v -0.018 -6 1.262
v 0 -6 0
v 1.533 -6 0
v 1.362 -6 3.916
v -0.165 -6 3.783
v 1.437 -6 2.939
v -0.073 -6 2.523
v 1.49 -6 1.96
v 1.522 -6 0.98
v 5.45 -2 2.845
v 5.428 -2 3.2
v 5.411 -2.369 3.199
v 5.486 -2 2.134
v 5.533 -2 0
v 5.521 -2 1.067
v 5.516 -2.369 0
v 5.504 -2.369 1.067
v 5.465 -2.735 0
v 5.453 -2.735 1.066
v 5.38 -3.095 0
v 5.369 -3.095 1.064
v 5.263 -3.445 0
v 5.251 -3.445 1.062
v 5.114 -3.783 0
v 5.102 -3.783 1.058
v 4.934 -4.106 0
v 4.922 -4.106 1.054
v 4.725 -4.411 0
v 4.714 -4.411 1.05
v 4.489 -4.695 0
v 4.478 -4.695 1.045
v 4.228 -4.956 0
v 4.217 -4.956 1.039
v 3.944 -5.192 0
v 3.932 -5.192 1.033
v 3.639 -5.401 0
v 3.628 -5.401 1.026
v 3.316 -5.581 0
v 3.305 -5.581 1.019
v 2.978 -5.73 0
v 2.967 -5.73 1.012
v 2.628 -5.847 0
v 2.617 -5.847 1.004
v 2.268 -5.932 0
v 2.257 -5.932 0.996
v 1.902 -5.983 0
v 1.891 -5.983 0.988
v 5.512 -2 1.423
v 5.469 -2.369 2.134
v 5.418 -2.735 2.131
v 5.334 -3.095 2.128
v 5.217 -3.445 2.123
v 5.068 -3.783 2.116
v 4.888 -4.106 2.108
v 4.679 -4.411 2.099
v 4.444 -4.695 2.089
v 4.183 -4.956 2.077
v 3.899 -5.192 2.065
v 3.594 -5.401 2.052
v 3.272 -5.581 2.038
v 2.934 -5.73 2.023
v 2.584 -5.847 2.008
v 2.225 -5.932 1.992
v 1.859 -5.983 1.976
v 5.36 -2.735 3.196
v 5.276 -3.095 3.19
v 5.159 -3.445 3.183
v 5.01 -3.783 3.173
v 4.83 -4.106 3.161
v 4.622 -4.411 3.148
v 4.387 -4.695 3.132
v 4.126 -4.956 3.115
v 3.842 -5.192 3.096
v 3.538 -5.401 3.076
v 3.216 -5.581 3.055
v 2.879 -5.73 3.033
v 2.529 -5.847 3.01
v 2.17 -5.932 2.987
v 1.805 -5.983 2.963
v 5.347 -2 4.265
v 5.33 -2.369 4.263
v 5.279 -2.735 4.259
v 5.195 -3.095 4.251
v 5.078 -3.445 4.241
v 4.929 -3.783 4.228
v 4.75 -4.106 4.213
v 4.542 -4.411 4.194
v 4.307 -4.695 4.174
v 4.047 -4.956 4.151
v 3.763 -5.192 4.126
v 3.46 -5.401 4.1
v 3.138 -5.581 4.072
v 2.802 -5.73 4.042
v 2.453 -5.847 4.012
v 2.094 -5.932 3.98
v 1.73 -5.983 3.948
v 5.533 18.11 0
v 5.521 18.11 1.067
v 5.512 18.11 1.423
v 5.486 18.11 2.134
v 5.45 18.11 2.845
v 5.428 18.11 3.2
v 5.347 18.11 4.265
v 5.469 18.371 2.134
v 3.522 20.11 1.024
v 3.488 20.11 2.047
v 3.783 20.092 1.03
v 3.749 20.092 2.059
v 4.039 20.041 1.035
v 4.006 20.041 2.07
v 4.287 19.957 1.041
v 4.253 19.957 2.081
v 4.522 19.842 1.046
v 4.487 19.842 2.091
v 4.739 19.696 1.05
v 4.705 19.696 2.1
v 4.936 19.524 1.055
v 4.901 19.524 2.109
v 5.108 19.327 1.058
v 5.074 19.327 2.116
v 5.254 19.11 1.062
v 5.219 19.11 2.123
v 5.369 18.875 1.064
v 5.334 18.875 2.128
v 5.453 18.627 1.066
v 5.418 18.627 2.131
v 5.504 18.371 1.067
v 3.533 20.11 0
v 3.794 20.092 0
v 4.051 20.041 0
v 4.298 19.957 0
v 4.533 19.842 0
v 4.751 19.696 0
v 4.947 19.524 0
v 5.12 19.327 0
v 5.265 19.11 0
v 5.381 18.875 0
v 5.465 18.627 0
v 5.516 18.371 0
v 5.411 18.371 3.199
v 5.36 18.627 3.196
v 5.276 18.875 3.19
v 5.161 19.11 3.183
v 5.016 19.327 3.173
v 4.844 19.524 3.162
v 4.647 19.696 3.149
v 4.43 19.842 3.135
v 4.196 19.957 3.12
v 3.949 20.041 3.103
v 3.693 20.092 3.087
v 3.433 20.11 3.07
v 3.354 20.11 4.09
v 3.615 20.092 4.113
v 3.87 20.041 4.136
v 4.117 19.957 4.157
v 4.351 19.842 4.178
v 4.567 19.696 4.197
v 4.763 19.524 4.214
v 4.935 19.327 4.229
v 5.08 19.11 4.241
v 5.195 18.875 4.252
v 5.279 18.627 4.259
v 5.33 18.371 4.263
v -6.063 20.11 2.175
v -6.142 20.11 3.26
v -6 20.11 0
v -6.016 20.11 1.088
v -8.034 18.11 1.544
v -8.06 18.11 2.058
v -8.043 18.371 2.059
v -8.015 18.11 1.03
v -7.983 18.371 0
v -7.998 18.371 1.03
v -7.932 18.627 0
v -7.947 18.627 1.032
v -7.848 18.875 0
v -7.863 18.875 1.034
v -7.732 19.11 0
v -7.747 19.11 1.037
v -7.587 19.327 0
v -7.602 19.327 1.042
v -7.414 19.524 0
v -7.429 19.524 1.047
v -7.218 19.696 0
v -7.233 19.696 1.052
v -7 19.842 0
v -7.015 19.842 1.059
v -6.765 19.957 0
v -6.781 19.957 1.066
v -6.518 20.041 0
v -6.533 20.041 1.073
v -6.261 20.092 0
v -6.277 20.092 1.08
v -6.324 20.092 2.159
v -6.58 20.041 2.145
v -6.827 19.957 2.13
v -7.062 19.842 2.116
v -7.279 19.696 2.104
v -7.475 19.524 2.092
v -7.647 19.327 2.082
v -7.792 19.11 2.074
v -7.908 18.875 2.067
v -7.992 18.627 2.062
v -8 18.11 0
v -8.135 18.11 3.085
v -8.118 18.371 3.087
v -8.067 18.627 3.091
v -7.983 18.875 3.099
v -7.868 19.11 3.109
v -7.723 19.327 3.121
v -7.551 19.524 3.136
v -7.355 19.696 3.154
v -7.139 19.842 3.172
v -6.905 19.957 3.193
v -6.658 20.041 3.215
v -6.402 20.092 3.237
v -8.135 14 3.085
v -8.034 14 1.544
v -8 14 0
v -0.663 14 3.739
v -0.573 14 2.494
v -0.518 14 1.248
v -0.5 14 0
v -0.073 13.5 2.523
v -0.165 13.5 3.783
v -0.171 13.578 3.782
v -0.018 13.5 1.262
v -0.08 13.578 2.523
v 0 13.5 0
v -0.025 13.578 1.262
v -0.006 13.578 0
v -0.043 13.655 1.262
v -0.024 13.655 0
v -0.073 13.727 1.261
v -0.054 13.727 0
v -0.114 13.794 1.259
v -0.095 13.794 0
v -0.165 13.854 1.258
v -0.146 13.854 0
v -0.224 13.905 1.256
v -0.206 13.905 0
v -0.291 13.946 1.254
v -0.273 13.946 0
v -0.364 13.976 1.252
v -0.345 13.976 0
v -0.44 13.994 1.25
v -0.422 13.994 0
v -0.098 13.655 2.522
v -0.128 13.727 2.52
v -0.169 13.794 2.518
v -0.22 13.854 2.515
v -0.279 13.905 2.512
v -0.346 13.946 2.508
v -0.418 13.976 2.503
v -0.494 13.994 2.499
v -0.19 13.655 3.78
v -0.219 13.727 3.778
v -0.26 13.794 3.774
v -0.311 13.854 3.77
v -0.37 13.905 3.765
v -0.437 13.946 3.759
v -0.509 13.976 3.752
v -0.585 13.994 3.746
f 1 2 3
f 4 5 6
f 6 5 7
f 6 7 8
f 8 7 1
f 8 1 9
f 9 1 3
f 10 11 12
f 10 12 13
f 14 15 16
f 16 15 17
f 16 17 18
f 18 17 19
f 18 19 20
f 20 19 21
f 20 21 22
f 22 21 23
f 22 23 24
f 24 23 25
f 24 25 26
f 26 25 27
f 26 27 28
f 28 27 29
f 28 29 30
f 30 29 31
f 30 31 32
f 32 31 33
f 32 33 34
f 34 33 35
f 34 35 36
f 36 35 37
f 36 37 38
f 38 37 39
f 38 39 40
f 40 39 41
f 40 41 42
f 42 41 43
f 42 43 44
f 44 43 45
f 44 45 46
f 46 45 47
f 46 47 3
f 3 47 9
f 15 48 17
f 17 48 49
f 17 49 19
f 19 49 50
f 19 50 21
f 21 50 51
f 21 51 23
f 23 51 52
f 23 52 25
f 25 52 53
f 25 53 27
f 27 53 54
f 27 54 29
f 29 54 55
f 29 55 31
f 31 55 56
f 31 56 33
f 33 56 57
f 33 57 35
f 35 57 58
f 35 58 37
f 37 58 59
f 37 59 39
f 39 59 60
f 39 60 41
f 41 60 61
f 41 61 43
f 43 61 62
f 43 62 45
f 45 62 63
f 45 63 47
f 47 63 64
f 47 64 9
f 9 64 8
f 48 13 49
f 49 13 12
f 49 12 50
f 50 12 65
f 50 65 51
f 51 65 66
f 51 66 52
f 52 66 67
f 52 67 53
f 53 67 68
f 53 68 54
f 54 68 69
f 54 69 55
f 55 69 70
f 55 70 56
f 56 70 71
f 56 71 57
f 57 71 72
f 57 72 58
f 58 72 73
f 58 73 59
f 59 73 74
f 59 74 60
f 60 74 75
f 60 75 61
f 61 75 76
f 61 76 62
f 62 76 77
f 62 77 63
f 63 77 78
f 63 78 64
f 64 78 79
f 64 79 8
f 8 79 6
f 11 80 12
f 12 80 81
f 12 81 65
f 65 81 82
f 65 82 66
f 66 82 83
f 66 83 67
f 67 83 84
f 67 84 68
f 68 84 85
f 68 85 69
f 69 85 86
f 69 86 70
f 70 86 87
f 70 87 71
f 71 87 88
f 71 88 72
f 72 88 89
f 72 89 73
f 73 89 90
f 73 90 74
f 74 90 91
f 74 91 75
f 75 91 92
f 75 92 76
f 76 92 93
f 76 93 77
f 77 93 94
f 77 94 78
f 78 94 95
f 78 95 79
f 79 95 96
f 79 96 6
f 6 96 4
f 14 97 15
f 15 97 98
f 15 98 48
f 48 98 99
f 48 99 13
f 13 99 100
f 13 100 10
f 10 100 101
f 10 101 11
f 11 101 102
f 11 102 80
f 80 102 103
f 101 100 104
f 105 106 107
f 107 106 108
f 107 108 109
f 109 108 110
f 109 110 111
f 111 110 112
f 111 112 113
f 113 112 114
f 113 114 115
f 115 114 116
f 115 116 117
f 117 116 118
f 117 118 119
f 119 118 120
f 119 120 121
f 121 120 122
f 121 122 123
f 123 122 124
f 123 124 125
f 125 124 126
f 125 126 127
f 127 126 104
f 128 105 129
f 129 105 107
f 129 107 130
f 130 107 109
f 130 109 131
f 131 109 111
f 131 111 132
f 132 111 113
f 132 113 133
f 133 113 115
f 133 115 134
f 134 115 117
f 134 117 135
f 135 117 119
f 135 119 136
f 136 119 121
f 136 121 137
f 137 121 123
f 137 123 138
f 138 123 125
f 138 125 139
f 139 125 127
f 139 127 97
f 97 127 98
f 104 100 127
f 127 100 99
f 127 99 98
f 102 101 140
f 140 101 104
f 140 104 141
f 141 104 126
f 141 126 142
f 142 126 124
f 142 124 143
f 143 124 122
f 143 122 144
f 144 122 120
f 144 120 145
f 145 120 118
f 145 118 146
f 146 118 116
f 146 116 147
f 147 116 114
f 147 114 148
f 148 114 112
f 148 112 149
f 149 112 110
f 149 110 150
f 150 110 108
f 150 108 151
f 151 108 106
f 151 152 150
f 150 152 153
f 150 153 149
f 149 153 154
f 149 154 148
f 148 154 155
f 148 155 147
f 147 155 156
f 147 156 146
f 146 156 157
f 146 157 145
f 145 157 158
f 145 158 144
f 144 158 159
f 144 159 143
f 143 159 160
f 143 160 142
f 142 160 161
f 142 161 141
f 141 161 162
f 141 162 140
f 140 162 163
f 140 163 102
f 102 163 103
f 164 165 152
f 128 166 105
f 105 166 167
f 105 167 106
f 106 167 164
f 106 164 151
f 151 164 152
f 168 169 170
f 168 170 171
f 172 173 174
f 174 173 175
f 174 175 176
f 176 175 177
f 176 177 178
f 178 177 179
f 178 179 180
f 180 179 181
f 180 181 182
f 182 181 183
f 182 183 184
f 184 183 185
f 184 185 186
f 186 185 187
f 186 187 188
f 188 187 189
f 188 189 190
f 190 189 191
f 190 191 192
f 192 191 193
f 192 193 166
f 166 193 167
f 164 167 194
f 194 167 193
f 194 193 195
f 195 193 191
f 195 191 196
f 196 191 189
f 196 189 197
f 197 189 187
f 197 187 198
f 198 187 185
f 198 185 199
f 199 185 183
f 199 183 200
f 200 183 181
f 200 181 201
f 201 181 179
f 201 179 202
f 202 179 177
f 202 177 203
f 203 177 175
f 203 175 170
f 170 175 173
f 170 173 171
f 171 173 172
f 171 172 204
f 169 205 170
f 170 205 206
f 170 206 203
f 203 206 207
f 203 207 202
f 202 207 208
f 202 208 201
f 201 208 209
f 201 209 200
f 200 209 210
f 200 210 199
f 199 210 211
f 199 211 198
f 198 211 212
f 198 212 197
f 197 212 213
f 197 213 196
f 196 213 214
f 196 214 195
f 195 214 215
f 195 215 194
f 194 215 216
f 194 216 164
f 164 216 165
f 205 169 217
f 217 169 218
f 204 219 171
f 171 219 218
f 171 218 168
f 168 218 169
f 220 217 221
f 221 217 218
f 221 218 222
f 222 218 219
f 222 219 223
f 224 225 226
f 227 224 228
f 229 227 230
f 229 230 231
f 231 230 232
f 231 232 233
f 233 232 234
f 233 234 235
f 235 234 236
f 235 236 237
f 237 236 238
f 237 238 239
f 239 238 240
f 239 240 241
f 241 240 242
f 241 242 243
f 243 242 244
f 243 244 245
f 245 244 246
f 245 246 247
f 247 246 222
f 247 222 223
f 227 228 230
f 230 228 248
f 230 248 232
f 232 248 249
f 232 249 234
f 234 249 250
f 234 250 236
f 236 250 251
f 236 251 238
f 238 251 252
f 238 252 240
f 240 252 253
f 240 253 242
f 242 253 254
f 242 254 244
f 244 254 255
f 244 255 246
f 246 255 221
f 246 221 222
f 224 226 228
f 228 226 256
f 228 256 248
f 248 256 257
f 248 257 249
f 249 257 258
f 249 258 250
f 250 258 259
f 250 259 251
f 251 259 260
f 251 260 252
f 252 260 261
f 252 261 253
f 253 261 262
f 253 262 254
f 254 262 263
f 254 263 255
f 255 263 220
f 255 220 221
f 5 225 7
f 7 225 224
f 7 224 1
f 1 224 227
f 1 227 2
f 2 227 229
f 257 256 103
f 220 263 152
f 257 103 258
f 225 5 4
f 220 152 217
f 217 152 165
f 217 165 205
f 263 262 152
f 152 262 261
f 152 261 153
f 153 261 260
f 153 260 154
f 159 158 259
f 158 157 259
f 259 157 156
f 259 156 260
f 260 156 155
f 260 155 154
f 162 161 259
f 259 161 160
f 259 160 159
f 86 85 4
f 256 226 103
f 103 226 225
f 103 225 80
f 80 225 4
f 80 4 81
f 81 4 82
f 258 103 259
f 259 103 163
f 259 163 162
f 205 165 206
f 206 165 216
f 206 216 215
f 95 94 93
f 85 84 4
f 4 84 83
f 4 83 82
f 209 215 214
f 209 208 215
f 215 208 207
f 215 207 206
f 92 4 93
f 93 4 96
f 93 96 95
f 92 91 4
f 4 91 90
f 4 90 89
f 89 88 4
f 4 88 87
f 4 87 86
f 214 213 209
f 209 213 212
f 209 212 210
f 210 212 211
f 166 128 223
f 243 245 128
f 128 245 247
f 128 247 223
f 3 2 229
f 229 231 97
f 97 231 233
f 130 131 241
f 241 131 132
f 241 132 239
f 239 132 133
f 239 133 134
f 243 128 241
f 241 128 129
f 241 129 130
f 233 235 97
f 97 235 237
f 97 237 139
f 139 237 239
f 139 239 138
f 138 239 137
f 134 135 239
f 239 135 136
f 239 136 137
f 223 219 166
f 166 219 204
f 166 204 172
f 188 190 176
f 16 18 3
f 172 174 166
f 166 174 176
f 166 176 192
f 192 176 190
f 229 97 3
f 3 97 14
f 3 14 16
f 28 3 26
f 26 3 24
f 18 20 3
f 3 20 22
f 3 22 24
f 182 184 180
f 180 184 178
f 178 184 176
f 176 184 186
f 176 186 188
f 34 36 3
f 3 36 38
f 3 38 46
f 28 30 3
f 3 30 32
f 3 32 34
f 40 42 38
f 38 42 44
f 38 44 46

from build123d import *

# Parameters (mm, degrees)
REVOLVE1_ANGLE = 5


with BuildPart() as part:
    # Sketch1 → Revolve1 (revolve)
    with BuildSketch(Plane.XY):
        with BuildLine():
            Line((0, 0), (0, 13.5))
            ThreePointArc((0, 13.5), (-0.146446609, 13.853553391), (-0.5, 14))
            Line((-0.5, 14), (-8, 14))
            Line((-8, 14), (-8, 18.109583933))
            ThreePointArc((-8, 18.109583933), (-7.414213562, 19.523797495), (-6, 20.109583933))
            Line((-6, 20.109583933), (3.533069031, 20.109583933))
            ThreePointArc((3.533069031, 20.109583933), (4.947282593, 19.523797495), (5.533069031, 18.109583933))
            Line((5.533069031, 18.109583933), (5.533069031, 14))
            Line((5.533069031, 14), (5.533069031, 0))
            Line((5.533069031, 0), (5.533069031, -2))
            ThreePointArc((5.533069031, -2), (4.361496156, -4.828427125), (1.533069031, -6))
            Line((1.533069031, -6), (0, -6))
            Line((0, -6), (0, 0))
        make_face()
    revolve(axis=Axis((-43.4, 20.109583933, 0), (0, -1, 0)), revolution_arc=REVOLVE1_ANGLE)


solid = part.part
